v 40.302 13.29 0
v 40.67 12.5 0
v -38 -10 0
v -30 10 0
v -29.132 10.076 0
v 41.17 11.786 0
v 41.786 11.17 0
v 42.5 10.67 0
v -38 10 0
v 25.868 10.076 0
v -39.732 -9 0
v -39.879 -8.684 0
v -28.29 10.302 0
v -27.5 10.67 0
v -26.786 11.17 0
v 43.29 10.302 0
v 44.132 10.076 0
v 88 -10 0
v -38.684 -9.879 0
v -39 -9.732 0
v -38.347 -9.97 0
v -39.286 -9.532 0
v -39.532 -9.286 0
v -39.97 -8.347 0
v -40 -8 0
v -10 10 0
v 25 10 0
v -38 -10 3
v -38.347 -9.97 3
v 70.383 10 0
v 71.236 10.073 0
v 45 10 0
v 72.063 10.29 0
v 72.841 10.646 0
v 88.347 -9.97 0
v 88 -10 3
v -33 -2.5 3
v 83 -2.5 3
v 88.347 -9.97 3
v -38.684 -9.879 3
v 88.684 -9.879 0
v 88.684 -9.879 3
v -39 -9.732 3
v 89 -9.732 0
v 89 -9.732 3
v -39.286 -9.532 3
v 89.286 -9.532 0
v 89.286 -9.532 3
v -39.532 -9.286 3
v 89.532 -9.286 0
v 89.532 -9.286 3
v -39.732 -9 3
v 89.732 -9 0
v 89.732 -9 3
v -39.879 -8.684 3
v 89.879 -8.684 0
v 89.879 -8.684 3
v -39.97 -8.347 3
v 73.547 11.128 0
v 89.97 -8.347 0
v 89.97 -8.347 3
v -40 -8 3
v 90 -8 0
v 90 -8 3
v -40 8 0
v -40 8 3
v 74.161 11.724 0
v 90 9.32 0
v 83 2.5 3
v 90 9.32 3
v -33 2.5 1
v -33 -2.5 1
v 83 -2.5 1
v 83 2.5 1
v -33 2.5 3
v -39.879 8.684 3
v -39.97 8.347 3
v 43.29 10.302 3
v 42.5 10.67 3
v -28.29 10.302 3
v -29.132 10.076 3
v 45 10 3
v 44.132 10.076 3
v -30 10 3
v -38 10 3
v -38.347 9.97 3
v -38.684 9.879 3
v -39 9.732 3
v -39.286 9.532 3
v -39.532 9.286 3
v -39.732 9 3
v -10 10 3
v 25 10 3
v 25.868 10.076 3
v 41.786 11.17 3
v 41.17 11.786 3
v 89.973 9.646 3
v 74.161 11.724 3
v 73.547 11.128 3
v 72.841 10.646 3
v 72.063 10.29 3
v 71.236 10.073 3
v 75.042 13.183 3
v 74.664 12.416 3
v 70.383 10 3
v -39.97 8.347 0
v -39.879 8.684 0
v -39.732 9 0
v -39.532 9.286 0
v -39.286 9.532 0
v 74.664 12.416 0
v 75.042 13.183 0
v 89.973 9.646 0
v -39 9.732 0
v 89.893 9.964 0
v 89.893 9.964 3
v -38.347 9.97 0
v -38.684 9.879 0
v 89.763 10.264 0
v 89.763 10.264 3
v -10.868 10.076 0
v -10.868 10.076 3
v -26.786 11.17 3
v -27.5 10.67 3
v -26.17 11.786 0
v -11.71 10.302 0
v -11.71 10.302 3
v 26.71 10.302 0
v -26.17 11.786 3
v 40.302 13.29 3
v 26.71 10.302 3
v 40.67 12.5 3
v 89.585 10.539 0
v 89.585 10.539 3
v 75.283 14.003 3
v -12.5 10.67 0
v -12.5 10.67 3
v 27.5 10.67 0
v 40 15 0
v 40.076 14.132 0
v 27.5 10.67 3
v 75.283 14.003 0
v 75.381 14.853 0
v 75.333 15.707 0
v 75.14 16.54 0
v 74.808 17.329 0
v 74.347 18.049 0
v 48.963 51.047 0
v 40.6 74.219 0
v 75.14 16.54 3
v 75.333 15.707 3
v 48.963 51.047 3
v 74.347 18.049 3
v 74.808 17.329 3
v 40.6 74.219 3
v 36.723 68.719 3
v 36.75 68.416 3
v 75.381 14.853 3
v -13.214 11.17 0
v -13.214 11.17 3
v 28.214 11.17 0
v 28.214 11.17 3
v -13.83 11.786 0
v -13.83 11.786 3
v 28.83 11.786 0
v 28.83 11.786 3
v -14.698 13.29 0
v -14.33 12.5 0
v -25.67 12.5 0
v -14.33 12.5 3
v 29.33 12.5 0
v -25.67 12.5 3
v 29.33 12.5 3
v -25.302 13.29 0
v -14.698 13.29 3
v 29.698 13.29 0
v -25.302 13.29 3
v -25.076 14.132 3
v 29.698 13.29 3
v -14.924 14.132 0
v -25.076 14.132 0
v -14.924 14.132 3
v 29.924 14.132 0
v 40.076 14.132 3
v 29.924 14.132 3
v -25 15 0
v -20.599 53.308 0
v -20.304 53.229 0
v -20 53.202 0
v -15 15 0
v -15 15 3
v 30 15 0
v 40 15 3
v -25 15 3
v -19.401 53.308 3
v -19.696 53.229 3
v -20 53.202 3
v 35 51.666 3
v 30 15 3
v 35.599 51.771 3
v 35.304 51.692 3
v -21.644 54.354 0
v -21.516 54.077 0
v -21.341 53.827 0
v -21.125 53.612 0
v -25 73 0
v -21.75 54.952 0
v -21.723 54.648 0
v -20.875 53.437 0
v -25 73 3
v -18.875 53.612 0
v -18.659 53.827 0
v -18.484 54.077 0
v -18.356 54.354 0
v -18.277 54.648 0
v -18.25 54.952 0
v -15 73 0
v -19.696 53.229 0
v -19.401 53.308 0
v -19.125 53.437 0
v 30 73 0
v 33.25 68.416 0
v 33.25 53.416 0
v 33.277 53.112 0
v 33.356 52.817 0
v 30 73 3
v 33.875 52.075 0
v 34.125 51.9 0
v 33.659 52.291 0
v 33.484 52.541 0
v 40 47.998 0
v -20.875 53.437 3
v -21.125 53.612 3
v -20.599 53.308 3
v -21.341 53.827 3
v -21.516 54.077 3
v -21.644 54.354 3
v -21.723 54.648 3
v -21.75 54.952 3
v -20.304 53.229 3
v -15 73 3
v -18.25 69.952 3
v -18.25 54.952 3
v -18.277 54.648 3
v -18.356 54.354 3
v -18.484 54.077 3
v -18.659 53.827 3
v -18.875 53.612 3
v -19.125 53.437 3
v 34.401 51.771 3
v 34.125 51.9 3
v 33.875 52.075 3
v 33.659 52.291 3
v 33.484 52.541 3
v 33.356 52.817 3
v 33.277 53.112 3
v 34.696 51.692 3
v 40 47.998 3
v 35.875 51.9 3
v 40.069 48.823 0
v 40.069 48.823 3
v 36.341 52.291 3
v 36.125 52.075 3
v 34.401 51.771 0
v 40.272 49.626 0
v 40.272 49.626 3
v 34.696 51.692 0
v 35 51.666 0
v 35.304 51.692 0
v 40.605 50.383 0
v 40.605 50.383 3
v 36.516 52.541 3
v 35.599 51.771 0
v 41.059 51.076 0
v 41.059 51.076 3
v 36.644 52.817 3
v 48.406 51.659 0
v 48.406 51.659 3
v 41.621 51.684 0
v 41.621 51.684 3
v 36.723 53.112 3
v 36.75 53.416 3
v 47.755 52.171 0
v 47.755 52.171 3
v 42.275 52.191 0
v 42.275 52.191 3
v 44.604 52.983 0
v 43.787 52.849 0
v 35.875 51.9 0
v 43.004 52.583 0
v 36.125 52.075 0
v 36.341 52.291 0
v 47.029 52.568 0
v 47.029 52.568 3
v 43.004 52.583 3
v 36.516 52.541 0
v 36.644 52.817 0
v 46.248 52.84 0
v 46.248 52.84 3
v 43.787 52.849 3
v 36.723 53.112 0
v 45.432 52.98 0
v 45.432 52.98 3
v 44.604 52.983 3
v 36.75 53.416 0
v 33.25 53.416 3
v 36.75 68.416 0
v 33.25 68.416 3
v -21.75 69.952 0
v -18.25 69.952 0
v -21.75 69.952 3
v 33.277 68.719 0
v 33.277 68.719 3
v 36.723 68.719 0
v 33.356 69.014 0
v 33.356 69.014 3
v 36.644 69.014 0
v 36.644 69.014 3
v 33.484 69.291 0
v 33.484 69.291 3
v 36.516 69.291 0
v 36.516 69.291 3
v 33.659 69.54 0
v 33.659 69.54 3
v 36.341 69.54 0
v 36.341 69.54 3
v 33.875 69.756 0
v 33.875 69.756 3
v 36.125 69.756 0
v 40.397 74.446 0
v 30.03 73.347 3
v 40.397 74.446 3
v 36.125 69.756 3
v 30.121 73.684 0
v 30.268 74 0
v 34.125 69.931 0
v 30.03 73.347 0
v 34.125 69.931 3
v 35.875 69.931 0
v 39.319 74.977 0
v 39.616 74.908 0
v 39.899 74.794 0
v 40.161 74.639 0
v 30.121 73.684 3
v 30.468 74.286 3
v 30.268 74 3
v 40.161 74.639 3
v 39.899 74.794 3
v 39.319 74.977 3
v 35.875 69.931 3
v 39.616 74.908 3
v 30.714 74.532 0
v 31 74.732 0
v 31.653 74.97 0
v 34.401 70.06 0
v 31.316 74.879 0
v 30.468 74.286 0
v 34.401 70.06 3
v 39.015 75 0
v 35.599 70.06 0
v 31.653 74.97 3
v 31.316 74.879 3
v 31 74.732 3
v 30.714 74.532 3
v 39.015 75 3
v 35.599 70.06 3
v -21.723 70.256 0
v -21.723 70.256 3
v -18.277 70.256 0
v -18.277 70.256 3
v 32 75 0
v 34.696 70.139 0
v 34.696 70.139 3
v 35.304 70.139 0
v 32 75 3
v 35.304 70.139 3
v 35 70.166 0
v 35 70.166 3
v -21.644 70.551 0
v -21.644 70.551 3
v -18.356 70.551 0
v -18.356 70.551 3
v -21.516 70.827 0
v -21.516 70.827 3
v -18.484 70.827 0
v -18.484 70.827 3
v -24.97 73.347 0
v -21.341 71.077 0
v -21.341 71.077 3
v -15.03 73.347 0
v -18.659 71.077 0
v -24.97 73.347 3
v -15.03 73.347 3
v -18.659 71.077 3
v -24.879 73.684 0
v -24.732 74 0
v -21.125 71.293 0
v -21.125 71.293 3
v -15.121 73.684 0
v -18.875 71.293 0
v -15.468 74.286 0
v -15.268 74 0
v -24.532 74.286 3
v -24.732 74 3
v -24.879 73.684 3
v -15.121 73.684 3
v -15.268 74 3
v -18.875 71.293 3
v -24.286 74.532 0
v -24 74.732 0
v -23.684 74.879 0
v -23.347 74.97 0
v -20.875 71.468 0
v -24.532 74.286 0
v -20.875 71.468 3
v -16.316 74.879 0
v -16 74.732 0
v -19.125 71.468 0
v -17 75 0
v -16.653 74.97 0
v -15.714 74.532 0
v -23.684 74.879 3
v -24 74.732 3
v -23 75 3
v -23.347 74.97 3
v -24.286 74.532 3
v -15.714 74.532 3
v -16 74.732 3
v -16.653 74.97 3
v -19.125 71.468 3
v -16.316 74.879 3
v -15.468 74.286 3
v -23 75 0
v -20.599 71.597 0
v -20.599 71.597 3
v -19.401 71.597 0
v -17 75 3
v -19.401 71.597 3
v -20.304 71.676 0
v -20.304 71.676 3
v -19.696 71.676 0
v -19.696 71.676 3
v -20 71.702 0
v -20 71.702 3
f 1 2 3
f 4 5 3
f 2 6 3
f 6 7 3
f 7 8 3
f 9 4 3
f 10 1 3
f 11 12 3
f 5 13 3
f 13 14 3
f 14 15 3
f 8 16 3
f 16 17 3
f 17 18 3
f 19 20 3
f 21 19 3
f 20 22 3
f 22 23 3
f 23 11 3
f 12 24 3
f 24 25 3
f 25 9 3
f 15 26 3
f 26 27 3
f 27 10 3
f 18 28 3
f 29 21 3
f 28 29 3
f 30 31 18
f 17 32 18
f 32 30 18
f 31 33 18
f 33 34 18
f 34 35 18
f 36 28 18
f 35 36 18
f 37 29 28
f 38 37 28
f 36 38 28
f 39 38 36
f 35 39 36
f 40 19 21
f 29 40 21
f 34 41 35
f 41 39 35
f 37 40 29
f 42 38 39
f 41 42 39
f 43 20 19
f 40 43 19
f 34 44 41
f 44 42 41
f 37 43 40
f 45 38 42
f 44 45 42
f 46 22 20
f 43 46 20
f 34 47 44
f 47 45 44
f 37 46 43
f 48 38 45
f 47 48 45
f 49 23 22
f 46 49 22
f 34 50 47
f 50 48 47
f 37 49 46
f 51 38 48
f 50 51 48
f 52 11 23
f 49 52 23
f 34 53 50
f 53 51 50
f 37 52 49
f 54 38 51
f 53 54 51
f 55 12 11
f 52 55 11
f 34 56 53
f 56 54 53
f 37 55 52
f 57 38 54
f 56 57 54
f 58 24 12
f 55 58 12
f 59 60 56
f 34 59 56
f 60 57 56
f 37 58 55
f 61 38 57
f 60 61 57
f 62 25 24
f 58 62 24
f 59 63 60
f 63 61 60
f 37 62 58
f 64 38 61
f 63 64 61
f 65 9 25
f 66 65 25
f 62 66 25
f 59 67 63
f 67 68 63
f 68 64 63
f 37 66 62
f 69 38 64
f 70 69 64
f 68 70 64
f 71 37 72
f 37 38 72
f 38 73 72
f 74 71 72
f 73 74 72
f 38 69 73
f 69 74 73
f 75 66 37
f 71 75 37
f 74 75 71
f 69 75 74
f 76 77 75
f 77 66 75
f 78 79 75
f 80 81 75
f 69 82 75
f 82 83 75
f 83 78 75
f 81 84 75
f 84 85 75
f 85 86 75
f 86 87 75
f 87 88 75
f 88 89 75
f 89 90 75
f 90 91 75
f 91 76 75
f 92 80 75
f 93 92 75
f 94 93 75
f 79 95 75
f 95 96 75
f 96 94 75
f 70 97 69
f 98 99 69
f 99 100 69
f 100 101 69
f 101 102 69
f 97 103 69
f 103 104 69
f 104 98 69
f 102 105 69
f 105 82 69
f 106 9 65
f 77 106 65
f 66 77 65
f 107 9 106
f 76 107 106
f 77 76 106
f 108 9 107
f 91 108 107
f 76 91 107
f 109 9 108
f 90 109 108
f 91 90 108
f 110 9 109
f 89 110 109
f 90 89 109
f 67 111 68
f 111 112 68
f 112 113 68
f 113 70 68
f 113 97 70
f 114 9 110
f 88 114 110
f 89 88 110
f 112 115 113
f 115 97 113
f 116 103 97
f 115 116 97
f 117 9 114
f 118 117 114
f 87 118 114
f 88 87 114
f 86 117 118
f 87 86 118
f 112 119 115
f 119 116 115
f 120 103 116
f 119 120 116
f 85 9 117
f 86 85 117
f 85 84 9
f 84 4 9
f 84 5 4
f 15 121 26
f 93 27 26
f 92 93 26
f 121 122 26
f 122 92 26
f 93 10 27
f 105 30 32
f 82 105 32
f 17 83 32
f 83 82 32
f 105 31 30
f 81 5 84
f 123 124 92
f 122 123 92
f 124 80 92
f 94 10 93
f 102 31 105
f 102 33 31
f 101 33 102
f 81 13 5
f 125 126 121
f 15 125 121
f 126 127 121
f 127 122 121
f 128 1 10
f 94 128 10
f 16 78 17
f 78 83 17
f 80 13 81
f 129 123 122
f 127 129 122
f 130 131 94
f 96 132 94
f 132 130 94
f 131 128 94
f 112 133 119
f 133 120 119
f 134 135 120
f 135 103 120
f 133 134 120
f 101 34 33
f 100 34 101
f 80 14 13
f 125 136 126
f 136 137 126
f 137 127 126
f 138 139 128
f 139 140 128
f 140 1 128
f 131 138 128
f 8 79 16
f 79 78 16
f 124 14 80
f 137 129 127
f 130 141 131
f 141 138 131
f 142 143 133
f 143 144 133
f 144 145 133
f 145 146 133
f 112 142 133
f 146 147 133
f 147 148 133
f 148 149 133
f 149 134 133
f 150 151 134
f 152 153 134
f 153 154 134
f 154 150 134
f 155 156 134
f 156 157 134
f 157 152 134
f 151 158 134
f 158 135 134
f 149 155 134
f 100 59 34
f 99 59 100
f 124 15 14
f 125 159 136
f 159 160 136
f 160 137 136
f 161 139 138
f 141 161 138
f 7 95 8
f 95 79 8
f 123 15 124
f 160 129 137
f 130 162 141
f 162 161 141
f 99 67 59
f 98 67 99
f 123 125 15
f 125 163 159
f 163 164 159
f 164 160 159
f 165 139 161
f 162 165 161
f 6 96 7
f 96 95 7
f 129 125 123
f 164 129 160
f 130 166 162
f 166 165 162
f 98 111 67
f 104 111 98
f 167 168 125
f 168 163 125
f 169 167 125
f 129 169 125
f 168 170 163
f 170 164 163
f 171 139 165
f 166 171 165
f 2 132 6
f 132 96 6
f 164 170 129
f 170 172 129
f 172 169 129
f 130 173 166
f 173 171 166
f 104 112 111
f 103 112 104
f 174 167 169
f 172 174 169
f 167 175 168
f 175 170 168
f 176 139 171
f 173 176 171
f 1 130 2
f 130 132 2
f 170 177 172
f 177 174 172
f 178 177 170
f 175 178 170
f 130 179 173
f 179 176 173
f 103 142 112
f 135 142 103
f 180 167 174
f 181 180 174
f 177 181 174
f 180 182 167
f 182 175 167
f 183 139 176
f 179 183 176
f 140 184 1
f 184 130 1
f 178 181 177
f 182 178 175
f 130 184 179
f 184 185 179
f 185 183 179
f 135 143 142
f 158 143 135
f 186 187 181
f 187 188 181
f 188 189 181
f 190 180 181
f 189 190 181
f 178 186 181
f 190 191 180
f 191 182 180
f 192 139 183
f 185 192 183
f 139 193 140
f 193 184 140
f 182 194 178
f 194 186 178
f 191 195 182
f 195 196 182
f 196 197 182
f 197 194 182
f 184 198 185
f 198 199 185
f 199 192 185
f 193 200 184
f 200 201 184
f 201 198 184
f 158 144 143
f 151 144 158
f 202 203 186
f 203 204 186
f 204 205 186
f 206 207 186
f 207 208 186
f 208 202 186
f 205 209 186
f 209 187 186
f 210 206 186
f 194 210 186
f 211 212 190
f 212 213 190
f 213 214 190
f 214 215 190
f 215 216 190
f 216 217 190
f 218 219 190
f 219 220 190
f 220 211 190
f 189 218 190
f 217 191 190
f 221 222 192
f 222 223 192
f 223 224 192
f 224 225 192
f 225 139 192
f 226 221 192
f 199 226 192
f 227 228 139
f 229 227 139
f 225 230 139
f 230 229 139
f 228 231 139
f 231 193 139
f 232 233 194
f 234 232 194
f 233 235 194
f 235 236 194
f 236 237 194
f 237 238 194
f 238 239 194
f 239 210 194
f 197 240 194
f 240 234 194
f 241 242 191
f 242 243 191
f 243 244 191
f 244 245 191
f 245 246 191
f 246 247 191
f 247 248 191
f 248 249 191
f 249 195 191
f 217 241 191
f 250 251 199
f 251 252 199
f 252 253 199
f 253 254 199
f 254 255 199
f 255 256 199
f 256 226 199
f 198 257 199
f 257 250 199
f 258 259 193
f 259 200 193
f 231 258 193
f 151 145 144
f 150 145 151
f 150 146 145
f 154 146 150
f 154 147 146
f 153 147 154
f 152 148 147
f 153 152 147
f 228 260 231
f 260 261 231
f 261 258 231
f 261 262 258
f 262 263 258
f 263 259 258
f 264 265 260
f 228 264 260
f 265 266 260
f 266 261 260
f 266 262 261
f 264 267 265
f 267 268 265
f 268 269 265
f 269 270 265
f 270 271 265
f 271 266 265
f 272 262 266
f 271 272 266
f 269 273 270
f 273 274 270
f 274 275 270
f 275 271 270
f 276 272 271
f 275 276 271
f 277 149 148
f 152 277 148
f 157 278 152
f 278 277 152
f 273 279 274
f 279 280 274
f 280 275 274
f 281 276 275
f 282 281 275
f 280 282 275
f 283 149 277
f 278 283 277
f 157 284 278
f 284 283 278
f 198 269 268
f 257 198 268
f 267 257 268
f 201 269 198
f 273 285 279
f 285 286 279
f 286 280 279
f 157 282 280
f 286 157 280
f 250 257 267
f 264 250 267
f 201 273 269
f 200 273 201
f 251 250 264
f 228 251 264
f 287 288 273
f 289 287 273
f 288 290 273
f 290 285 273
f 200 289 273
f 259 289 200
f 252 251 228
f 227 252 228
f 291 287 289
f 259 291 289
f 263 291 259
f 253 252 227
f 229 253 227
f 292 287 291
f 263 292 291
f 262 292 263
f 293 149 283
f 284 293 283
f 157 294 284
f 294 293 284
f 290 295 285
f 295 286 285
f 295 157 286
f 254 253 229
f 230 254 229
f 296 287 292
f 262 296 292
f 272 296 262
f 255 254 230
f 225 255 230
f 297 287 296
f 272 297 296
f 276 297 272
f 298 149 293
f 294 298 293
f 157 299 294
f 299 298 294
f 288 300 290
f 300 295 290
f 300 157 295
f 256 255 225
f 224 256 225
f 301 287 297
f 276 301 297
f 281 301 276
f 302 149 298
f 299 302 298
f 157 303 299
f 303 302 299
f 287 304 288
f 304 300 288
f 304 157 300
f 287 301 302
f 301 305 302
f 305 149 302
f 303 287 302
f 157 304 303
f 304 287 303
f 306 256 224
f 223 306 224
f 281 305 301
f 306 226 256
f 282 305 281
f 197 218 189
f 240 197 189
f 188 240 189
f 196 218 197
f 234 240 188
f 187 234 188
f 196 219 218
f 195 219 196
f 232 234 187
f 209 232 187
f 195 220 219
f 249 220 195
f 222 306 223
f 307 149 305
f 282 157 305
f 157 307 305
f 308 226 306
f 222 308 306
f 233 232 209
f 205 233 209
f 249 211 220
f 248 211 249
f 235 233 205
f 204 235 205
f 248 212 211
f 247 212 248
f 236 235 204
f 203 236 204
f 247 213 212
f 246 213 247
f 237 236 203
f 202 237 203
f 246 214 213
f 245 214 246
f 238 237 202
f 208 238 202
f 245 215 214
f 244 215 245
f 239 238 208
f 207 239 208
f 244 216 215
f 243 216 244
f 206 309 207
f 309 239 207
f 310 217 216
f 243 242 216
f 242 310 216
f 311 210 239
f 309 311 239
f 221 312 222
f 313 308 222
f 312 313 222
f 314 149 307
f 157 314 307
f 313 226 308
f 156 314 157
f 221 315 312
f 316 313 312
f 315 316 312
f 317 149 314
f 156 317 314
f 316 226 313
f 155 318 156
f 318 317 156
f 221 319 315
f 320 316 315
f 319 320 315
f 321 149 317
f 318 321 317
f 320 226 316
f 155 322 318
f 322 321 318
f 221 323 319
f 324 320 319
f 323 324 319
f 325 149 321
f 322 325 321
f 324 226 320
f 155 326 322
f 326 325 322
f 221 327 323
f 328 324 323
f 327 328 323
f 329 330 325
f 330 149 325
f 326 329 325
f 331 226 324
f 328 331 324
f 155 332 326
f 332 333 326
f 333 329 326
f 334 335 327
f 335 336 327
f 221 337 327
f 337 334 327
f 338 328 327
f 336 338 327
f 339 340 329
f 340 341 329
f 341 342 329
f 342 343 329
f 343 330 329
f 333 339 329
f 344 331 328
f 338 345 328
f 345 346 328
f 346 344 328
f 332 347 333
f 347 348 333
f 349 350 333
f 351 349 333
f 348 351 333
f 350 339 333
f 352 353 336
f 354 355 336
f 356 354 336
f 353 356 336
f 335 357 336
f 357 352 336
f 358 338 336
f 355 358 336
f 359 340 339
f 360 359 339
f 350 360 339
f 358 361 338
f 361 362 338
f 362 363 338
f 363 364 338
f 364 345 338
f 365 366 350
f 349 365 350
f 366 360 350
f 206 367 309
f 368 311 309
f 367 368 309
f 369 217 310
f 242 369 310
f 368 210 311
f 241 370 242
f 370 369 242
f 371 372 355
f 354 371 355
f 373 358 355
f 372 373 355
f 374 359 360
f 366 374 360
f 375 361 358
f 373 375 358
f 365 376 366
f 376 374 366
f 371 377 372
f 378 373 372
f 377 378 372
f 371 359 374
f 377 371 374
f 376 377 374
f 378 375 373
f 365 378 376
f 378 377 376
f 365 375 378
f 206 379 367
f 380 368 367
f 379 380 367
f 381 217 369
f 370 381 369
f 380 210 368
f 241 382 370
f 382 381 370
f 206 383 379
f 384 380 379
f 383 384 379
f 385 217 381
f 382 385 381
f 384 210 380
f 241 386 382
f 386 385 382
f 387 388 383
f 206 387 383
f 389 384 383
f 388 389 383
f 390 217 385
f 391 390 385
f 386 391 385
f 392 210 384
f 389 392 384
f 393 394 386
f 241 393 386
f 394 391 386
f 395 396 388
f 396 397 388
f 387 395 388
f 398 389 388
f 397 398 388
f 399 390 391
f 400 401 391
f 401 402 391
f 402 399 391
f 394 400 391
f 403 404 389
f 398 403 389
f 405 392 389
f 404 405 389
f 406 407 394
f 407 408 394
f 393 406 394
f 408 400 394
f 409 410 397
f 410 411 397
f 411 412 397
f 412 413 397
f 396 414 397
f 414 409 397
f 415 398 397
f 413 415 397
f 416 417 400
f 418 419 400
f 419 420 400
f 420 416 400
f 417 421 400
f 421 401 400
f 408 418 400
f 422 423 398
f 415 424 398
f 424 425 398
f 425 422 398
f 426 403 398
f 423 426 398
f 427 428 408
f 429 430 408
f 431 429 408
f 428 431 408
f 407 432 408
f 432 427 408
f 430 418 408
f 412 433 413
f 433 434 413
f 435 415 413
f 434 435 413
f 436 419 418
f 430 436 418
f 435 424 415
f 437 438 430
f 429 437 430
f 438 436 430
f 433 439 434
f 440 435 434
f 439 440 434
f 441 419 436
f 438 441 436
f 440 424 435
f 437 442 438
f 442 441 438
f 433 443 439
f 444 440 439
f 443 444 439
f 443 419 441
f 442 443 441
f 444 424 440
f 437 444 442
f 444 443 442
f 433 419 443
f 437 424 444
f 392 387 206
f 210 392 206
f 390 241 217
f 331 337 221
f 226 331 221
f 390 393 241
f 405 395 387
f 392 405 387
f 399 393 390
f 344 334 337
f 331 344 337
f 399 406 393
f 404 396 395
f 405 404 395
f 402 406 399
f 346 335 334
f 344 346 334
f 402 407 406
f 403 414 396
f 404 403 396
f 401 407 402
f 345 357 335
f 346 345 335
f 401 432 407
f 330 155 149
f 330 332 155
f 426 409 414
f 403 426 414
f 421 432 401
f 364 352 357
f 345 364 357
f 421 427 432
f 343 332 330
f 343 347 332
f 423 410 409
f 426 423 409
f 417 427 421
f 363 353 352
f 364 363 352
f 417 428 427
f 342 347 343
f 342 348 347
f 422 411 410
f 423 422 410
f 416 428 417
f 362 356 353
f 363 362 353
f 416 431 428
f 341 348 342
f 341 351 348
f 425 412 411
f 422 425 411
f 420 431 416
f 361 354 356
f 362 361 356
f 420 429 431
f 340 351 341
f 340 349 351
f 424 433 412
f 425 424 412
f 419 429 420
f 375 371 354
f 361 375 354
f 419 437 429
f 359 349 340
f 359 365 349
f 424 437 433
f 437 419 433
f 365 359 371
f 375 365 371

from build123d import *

# Parameters (mm, degrees)
CROQUIS1_W              = 116
CROQUIS1_H              = 5
SALIENTE_EXTRUIR1_DEPTH = 3
CROQUIS1_3_W            = 116
CROQUIS1_3_H            = 5
SALIENTE_EXTRUIR2_DEPTH = 1
REDONDEO1_R             = 5
REDONDEO2_R             = 2


with BuildPart() as part:
    # Croquis1 → Saliente-Extruir1 (new body)
    with BuildSketch(Plane.XY):
        Polygon((-40, 10), (-40, -10), (40, -10), (90, -10), (90, 10), (40, 75), (30, 75), (30, 10), (-15, 10), (-15, 75), (-25, 75), (-25, 10), align=None)
        Polygon((40, 10), (40, 62.6990854), (80.537758, 10), align=None, mode=Mode.SUBTRACT)
        with BuildLine():
            Line((33.25, 68.415525287), (33.25, 53.415525287))
            ThreePointArc((33.25, 53.415525287), (35, 51.665525287), (36.75, 53.415525287))
            Line((36.75, 53.415525287), (36.75, 68.415525287))
            ThreePointArc((36.75, 68.415525287), (35, 70.165525287), (33.25, 68.415525287))
        make_face(mode=Mode.SUBTRACT)
        with Locations((25, 0)):
            Rectangle(CROQUIS1_W, CROQUIS1_H, mode=Mode.SUBTRACT)
        with BuildLine():
            Line((-18.25, 69.952267229), (-18.25, 54.952267229))
            ThreePointArc((-18.25, 54.952267229), (-20, 53.202267229), (-21.75, 54.952267229))
            Line((-21.75, 54.952267229), (-21.75, 69.952267229))
            ThreePointArc((-21.75, 69.952267229), (-20, 71.702267229), (-18.25, 69.952267229))
        make_face(mode=Mode.SUBTRACT)
    extrude(amount=SALIENTE_EXTRUIR1_DEPTH)

    # Croquis1<3> → Saliente-Extruir2 (add)
    with BuildSketch(Plane.XY):
        with Locations((25, 0)):
            Rectangle(CROQUIS1_3_W, CROQUIS1_3_H)
    extrude(amount=SALIENTE_EXTRUIR2_DEPTH)

    # Redondeo1
    redondeo1_edges = [part.edges().sort_by_distance(p)[0] for p in [
        (-25, 10, 1.5),
        (-15, 10, 1.5),
        (30, 10, 1.5),
        (40, 10, 1.5),
        (80.537758, 10, 1.5),
        (40, 62.6990854, 1.5),
    ]]
    fillet(redondeo1_edges, radius=REDONDEO1_R)

    # Redondeo2
    redondeo2_edges = [part.edges().sort_by_distance(p)[0] for p in [
        (-25, 75, 1.5),
        (-15, 75, 1.5),
        (30, 75, 1.5),
        (40, 75, 1.5),
        (90, 10, 1.5),
        (90, -10, 1.5),
        (-40, -10, 1.5),
        (-40, 10, 1.5),
    ]]
    fillet(redondeo2_edges, radius=REDONDEO2_R)


solid = part.part
